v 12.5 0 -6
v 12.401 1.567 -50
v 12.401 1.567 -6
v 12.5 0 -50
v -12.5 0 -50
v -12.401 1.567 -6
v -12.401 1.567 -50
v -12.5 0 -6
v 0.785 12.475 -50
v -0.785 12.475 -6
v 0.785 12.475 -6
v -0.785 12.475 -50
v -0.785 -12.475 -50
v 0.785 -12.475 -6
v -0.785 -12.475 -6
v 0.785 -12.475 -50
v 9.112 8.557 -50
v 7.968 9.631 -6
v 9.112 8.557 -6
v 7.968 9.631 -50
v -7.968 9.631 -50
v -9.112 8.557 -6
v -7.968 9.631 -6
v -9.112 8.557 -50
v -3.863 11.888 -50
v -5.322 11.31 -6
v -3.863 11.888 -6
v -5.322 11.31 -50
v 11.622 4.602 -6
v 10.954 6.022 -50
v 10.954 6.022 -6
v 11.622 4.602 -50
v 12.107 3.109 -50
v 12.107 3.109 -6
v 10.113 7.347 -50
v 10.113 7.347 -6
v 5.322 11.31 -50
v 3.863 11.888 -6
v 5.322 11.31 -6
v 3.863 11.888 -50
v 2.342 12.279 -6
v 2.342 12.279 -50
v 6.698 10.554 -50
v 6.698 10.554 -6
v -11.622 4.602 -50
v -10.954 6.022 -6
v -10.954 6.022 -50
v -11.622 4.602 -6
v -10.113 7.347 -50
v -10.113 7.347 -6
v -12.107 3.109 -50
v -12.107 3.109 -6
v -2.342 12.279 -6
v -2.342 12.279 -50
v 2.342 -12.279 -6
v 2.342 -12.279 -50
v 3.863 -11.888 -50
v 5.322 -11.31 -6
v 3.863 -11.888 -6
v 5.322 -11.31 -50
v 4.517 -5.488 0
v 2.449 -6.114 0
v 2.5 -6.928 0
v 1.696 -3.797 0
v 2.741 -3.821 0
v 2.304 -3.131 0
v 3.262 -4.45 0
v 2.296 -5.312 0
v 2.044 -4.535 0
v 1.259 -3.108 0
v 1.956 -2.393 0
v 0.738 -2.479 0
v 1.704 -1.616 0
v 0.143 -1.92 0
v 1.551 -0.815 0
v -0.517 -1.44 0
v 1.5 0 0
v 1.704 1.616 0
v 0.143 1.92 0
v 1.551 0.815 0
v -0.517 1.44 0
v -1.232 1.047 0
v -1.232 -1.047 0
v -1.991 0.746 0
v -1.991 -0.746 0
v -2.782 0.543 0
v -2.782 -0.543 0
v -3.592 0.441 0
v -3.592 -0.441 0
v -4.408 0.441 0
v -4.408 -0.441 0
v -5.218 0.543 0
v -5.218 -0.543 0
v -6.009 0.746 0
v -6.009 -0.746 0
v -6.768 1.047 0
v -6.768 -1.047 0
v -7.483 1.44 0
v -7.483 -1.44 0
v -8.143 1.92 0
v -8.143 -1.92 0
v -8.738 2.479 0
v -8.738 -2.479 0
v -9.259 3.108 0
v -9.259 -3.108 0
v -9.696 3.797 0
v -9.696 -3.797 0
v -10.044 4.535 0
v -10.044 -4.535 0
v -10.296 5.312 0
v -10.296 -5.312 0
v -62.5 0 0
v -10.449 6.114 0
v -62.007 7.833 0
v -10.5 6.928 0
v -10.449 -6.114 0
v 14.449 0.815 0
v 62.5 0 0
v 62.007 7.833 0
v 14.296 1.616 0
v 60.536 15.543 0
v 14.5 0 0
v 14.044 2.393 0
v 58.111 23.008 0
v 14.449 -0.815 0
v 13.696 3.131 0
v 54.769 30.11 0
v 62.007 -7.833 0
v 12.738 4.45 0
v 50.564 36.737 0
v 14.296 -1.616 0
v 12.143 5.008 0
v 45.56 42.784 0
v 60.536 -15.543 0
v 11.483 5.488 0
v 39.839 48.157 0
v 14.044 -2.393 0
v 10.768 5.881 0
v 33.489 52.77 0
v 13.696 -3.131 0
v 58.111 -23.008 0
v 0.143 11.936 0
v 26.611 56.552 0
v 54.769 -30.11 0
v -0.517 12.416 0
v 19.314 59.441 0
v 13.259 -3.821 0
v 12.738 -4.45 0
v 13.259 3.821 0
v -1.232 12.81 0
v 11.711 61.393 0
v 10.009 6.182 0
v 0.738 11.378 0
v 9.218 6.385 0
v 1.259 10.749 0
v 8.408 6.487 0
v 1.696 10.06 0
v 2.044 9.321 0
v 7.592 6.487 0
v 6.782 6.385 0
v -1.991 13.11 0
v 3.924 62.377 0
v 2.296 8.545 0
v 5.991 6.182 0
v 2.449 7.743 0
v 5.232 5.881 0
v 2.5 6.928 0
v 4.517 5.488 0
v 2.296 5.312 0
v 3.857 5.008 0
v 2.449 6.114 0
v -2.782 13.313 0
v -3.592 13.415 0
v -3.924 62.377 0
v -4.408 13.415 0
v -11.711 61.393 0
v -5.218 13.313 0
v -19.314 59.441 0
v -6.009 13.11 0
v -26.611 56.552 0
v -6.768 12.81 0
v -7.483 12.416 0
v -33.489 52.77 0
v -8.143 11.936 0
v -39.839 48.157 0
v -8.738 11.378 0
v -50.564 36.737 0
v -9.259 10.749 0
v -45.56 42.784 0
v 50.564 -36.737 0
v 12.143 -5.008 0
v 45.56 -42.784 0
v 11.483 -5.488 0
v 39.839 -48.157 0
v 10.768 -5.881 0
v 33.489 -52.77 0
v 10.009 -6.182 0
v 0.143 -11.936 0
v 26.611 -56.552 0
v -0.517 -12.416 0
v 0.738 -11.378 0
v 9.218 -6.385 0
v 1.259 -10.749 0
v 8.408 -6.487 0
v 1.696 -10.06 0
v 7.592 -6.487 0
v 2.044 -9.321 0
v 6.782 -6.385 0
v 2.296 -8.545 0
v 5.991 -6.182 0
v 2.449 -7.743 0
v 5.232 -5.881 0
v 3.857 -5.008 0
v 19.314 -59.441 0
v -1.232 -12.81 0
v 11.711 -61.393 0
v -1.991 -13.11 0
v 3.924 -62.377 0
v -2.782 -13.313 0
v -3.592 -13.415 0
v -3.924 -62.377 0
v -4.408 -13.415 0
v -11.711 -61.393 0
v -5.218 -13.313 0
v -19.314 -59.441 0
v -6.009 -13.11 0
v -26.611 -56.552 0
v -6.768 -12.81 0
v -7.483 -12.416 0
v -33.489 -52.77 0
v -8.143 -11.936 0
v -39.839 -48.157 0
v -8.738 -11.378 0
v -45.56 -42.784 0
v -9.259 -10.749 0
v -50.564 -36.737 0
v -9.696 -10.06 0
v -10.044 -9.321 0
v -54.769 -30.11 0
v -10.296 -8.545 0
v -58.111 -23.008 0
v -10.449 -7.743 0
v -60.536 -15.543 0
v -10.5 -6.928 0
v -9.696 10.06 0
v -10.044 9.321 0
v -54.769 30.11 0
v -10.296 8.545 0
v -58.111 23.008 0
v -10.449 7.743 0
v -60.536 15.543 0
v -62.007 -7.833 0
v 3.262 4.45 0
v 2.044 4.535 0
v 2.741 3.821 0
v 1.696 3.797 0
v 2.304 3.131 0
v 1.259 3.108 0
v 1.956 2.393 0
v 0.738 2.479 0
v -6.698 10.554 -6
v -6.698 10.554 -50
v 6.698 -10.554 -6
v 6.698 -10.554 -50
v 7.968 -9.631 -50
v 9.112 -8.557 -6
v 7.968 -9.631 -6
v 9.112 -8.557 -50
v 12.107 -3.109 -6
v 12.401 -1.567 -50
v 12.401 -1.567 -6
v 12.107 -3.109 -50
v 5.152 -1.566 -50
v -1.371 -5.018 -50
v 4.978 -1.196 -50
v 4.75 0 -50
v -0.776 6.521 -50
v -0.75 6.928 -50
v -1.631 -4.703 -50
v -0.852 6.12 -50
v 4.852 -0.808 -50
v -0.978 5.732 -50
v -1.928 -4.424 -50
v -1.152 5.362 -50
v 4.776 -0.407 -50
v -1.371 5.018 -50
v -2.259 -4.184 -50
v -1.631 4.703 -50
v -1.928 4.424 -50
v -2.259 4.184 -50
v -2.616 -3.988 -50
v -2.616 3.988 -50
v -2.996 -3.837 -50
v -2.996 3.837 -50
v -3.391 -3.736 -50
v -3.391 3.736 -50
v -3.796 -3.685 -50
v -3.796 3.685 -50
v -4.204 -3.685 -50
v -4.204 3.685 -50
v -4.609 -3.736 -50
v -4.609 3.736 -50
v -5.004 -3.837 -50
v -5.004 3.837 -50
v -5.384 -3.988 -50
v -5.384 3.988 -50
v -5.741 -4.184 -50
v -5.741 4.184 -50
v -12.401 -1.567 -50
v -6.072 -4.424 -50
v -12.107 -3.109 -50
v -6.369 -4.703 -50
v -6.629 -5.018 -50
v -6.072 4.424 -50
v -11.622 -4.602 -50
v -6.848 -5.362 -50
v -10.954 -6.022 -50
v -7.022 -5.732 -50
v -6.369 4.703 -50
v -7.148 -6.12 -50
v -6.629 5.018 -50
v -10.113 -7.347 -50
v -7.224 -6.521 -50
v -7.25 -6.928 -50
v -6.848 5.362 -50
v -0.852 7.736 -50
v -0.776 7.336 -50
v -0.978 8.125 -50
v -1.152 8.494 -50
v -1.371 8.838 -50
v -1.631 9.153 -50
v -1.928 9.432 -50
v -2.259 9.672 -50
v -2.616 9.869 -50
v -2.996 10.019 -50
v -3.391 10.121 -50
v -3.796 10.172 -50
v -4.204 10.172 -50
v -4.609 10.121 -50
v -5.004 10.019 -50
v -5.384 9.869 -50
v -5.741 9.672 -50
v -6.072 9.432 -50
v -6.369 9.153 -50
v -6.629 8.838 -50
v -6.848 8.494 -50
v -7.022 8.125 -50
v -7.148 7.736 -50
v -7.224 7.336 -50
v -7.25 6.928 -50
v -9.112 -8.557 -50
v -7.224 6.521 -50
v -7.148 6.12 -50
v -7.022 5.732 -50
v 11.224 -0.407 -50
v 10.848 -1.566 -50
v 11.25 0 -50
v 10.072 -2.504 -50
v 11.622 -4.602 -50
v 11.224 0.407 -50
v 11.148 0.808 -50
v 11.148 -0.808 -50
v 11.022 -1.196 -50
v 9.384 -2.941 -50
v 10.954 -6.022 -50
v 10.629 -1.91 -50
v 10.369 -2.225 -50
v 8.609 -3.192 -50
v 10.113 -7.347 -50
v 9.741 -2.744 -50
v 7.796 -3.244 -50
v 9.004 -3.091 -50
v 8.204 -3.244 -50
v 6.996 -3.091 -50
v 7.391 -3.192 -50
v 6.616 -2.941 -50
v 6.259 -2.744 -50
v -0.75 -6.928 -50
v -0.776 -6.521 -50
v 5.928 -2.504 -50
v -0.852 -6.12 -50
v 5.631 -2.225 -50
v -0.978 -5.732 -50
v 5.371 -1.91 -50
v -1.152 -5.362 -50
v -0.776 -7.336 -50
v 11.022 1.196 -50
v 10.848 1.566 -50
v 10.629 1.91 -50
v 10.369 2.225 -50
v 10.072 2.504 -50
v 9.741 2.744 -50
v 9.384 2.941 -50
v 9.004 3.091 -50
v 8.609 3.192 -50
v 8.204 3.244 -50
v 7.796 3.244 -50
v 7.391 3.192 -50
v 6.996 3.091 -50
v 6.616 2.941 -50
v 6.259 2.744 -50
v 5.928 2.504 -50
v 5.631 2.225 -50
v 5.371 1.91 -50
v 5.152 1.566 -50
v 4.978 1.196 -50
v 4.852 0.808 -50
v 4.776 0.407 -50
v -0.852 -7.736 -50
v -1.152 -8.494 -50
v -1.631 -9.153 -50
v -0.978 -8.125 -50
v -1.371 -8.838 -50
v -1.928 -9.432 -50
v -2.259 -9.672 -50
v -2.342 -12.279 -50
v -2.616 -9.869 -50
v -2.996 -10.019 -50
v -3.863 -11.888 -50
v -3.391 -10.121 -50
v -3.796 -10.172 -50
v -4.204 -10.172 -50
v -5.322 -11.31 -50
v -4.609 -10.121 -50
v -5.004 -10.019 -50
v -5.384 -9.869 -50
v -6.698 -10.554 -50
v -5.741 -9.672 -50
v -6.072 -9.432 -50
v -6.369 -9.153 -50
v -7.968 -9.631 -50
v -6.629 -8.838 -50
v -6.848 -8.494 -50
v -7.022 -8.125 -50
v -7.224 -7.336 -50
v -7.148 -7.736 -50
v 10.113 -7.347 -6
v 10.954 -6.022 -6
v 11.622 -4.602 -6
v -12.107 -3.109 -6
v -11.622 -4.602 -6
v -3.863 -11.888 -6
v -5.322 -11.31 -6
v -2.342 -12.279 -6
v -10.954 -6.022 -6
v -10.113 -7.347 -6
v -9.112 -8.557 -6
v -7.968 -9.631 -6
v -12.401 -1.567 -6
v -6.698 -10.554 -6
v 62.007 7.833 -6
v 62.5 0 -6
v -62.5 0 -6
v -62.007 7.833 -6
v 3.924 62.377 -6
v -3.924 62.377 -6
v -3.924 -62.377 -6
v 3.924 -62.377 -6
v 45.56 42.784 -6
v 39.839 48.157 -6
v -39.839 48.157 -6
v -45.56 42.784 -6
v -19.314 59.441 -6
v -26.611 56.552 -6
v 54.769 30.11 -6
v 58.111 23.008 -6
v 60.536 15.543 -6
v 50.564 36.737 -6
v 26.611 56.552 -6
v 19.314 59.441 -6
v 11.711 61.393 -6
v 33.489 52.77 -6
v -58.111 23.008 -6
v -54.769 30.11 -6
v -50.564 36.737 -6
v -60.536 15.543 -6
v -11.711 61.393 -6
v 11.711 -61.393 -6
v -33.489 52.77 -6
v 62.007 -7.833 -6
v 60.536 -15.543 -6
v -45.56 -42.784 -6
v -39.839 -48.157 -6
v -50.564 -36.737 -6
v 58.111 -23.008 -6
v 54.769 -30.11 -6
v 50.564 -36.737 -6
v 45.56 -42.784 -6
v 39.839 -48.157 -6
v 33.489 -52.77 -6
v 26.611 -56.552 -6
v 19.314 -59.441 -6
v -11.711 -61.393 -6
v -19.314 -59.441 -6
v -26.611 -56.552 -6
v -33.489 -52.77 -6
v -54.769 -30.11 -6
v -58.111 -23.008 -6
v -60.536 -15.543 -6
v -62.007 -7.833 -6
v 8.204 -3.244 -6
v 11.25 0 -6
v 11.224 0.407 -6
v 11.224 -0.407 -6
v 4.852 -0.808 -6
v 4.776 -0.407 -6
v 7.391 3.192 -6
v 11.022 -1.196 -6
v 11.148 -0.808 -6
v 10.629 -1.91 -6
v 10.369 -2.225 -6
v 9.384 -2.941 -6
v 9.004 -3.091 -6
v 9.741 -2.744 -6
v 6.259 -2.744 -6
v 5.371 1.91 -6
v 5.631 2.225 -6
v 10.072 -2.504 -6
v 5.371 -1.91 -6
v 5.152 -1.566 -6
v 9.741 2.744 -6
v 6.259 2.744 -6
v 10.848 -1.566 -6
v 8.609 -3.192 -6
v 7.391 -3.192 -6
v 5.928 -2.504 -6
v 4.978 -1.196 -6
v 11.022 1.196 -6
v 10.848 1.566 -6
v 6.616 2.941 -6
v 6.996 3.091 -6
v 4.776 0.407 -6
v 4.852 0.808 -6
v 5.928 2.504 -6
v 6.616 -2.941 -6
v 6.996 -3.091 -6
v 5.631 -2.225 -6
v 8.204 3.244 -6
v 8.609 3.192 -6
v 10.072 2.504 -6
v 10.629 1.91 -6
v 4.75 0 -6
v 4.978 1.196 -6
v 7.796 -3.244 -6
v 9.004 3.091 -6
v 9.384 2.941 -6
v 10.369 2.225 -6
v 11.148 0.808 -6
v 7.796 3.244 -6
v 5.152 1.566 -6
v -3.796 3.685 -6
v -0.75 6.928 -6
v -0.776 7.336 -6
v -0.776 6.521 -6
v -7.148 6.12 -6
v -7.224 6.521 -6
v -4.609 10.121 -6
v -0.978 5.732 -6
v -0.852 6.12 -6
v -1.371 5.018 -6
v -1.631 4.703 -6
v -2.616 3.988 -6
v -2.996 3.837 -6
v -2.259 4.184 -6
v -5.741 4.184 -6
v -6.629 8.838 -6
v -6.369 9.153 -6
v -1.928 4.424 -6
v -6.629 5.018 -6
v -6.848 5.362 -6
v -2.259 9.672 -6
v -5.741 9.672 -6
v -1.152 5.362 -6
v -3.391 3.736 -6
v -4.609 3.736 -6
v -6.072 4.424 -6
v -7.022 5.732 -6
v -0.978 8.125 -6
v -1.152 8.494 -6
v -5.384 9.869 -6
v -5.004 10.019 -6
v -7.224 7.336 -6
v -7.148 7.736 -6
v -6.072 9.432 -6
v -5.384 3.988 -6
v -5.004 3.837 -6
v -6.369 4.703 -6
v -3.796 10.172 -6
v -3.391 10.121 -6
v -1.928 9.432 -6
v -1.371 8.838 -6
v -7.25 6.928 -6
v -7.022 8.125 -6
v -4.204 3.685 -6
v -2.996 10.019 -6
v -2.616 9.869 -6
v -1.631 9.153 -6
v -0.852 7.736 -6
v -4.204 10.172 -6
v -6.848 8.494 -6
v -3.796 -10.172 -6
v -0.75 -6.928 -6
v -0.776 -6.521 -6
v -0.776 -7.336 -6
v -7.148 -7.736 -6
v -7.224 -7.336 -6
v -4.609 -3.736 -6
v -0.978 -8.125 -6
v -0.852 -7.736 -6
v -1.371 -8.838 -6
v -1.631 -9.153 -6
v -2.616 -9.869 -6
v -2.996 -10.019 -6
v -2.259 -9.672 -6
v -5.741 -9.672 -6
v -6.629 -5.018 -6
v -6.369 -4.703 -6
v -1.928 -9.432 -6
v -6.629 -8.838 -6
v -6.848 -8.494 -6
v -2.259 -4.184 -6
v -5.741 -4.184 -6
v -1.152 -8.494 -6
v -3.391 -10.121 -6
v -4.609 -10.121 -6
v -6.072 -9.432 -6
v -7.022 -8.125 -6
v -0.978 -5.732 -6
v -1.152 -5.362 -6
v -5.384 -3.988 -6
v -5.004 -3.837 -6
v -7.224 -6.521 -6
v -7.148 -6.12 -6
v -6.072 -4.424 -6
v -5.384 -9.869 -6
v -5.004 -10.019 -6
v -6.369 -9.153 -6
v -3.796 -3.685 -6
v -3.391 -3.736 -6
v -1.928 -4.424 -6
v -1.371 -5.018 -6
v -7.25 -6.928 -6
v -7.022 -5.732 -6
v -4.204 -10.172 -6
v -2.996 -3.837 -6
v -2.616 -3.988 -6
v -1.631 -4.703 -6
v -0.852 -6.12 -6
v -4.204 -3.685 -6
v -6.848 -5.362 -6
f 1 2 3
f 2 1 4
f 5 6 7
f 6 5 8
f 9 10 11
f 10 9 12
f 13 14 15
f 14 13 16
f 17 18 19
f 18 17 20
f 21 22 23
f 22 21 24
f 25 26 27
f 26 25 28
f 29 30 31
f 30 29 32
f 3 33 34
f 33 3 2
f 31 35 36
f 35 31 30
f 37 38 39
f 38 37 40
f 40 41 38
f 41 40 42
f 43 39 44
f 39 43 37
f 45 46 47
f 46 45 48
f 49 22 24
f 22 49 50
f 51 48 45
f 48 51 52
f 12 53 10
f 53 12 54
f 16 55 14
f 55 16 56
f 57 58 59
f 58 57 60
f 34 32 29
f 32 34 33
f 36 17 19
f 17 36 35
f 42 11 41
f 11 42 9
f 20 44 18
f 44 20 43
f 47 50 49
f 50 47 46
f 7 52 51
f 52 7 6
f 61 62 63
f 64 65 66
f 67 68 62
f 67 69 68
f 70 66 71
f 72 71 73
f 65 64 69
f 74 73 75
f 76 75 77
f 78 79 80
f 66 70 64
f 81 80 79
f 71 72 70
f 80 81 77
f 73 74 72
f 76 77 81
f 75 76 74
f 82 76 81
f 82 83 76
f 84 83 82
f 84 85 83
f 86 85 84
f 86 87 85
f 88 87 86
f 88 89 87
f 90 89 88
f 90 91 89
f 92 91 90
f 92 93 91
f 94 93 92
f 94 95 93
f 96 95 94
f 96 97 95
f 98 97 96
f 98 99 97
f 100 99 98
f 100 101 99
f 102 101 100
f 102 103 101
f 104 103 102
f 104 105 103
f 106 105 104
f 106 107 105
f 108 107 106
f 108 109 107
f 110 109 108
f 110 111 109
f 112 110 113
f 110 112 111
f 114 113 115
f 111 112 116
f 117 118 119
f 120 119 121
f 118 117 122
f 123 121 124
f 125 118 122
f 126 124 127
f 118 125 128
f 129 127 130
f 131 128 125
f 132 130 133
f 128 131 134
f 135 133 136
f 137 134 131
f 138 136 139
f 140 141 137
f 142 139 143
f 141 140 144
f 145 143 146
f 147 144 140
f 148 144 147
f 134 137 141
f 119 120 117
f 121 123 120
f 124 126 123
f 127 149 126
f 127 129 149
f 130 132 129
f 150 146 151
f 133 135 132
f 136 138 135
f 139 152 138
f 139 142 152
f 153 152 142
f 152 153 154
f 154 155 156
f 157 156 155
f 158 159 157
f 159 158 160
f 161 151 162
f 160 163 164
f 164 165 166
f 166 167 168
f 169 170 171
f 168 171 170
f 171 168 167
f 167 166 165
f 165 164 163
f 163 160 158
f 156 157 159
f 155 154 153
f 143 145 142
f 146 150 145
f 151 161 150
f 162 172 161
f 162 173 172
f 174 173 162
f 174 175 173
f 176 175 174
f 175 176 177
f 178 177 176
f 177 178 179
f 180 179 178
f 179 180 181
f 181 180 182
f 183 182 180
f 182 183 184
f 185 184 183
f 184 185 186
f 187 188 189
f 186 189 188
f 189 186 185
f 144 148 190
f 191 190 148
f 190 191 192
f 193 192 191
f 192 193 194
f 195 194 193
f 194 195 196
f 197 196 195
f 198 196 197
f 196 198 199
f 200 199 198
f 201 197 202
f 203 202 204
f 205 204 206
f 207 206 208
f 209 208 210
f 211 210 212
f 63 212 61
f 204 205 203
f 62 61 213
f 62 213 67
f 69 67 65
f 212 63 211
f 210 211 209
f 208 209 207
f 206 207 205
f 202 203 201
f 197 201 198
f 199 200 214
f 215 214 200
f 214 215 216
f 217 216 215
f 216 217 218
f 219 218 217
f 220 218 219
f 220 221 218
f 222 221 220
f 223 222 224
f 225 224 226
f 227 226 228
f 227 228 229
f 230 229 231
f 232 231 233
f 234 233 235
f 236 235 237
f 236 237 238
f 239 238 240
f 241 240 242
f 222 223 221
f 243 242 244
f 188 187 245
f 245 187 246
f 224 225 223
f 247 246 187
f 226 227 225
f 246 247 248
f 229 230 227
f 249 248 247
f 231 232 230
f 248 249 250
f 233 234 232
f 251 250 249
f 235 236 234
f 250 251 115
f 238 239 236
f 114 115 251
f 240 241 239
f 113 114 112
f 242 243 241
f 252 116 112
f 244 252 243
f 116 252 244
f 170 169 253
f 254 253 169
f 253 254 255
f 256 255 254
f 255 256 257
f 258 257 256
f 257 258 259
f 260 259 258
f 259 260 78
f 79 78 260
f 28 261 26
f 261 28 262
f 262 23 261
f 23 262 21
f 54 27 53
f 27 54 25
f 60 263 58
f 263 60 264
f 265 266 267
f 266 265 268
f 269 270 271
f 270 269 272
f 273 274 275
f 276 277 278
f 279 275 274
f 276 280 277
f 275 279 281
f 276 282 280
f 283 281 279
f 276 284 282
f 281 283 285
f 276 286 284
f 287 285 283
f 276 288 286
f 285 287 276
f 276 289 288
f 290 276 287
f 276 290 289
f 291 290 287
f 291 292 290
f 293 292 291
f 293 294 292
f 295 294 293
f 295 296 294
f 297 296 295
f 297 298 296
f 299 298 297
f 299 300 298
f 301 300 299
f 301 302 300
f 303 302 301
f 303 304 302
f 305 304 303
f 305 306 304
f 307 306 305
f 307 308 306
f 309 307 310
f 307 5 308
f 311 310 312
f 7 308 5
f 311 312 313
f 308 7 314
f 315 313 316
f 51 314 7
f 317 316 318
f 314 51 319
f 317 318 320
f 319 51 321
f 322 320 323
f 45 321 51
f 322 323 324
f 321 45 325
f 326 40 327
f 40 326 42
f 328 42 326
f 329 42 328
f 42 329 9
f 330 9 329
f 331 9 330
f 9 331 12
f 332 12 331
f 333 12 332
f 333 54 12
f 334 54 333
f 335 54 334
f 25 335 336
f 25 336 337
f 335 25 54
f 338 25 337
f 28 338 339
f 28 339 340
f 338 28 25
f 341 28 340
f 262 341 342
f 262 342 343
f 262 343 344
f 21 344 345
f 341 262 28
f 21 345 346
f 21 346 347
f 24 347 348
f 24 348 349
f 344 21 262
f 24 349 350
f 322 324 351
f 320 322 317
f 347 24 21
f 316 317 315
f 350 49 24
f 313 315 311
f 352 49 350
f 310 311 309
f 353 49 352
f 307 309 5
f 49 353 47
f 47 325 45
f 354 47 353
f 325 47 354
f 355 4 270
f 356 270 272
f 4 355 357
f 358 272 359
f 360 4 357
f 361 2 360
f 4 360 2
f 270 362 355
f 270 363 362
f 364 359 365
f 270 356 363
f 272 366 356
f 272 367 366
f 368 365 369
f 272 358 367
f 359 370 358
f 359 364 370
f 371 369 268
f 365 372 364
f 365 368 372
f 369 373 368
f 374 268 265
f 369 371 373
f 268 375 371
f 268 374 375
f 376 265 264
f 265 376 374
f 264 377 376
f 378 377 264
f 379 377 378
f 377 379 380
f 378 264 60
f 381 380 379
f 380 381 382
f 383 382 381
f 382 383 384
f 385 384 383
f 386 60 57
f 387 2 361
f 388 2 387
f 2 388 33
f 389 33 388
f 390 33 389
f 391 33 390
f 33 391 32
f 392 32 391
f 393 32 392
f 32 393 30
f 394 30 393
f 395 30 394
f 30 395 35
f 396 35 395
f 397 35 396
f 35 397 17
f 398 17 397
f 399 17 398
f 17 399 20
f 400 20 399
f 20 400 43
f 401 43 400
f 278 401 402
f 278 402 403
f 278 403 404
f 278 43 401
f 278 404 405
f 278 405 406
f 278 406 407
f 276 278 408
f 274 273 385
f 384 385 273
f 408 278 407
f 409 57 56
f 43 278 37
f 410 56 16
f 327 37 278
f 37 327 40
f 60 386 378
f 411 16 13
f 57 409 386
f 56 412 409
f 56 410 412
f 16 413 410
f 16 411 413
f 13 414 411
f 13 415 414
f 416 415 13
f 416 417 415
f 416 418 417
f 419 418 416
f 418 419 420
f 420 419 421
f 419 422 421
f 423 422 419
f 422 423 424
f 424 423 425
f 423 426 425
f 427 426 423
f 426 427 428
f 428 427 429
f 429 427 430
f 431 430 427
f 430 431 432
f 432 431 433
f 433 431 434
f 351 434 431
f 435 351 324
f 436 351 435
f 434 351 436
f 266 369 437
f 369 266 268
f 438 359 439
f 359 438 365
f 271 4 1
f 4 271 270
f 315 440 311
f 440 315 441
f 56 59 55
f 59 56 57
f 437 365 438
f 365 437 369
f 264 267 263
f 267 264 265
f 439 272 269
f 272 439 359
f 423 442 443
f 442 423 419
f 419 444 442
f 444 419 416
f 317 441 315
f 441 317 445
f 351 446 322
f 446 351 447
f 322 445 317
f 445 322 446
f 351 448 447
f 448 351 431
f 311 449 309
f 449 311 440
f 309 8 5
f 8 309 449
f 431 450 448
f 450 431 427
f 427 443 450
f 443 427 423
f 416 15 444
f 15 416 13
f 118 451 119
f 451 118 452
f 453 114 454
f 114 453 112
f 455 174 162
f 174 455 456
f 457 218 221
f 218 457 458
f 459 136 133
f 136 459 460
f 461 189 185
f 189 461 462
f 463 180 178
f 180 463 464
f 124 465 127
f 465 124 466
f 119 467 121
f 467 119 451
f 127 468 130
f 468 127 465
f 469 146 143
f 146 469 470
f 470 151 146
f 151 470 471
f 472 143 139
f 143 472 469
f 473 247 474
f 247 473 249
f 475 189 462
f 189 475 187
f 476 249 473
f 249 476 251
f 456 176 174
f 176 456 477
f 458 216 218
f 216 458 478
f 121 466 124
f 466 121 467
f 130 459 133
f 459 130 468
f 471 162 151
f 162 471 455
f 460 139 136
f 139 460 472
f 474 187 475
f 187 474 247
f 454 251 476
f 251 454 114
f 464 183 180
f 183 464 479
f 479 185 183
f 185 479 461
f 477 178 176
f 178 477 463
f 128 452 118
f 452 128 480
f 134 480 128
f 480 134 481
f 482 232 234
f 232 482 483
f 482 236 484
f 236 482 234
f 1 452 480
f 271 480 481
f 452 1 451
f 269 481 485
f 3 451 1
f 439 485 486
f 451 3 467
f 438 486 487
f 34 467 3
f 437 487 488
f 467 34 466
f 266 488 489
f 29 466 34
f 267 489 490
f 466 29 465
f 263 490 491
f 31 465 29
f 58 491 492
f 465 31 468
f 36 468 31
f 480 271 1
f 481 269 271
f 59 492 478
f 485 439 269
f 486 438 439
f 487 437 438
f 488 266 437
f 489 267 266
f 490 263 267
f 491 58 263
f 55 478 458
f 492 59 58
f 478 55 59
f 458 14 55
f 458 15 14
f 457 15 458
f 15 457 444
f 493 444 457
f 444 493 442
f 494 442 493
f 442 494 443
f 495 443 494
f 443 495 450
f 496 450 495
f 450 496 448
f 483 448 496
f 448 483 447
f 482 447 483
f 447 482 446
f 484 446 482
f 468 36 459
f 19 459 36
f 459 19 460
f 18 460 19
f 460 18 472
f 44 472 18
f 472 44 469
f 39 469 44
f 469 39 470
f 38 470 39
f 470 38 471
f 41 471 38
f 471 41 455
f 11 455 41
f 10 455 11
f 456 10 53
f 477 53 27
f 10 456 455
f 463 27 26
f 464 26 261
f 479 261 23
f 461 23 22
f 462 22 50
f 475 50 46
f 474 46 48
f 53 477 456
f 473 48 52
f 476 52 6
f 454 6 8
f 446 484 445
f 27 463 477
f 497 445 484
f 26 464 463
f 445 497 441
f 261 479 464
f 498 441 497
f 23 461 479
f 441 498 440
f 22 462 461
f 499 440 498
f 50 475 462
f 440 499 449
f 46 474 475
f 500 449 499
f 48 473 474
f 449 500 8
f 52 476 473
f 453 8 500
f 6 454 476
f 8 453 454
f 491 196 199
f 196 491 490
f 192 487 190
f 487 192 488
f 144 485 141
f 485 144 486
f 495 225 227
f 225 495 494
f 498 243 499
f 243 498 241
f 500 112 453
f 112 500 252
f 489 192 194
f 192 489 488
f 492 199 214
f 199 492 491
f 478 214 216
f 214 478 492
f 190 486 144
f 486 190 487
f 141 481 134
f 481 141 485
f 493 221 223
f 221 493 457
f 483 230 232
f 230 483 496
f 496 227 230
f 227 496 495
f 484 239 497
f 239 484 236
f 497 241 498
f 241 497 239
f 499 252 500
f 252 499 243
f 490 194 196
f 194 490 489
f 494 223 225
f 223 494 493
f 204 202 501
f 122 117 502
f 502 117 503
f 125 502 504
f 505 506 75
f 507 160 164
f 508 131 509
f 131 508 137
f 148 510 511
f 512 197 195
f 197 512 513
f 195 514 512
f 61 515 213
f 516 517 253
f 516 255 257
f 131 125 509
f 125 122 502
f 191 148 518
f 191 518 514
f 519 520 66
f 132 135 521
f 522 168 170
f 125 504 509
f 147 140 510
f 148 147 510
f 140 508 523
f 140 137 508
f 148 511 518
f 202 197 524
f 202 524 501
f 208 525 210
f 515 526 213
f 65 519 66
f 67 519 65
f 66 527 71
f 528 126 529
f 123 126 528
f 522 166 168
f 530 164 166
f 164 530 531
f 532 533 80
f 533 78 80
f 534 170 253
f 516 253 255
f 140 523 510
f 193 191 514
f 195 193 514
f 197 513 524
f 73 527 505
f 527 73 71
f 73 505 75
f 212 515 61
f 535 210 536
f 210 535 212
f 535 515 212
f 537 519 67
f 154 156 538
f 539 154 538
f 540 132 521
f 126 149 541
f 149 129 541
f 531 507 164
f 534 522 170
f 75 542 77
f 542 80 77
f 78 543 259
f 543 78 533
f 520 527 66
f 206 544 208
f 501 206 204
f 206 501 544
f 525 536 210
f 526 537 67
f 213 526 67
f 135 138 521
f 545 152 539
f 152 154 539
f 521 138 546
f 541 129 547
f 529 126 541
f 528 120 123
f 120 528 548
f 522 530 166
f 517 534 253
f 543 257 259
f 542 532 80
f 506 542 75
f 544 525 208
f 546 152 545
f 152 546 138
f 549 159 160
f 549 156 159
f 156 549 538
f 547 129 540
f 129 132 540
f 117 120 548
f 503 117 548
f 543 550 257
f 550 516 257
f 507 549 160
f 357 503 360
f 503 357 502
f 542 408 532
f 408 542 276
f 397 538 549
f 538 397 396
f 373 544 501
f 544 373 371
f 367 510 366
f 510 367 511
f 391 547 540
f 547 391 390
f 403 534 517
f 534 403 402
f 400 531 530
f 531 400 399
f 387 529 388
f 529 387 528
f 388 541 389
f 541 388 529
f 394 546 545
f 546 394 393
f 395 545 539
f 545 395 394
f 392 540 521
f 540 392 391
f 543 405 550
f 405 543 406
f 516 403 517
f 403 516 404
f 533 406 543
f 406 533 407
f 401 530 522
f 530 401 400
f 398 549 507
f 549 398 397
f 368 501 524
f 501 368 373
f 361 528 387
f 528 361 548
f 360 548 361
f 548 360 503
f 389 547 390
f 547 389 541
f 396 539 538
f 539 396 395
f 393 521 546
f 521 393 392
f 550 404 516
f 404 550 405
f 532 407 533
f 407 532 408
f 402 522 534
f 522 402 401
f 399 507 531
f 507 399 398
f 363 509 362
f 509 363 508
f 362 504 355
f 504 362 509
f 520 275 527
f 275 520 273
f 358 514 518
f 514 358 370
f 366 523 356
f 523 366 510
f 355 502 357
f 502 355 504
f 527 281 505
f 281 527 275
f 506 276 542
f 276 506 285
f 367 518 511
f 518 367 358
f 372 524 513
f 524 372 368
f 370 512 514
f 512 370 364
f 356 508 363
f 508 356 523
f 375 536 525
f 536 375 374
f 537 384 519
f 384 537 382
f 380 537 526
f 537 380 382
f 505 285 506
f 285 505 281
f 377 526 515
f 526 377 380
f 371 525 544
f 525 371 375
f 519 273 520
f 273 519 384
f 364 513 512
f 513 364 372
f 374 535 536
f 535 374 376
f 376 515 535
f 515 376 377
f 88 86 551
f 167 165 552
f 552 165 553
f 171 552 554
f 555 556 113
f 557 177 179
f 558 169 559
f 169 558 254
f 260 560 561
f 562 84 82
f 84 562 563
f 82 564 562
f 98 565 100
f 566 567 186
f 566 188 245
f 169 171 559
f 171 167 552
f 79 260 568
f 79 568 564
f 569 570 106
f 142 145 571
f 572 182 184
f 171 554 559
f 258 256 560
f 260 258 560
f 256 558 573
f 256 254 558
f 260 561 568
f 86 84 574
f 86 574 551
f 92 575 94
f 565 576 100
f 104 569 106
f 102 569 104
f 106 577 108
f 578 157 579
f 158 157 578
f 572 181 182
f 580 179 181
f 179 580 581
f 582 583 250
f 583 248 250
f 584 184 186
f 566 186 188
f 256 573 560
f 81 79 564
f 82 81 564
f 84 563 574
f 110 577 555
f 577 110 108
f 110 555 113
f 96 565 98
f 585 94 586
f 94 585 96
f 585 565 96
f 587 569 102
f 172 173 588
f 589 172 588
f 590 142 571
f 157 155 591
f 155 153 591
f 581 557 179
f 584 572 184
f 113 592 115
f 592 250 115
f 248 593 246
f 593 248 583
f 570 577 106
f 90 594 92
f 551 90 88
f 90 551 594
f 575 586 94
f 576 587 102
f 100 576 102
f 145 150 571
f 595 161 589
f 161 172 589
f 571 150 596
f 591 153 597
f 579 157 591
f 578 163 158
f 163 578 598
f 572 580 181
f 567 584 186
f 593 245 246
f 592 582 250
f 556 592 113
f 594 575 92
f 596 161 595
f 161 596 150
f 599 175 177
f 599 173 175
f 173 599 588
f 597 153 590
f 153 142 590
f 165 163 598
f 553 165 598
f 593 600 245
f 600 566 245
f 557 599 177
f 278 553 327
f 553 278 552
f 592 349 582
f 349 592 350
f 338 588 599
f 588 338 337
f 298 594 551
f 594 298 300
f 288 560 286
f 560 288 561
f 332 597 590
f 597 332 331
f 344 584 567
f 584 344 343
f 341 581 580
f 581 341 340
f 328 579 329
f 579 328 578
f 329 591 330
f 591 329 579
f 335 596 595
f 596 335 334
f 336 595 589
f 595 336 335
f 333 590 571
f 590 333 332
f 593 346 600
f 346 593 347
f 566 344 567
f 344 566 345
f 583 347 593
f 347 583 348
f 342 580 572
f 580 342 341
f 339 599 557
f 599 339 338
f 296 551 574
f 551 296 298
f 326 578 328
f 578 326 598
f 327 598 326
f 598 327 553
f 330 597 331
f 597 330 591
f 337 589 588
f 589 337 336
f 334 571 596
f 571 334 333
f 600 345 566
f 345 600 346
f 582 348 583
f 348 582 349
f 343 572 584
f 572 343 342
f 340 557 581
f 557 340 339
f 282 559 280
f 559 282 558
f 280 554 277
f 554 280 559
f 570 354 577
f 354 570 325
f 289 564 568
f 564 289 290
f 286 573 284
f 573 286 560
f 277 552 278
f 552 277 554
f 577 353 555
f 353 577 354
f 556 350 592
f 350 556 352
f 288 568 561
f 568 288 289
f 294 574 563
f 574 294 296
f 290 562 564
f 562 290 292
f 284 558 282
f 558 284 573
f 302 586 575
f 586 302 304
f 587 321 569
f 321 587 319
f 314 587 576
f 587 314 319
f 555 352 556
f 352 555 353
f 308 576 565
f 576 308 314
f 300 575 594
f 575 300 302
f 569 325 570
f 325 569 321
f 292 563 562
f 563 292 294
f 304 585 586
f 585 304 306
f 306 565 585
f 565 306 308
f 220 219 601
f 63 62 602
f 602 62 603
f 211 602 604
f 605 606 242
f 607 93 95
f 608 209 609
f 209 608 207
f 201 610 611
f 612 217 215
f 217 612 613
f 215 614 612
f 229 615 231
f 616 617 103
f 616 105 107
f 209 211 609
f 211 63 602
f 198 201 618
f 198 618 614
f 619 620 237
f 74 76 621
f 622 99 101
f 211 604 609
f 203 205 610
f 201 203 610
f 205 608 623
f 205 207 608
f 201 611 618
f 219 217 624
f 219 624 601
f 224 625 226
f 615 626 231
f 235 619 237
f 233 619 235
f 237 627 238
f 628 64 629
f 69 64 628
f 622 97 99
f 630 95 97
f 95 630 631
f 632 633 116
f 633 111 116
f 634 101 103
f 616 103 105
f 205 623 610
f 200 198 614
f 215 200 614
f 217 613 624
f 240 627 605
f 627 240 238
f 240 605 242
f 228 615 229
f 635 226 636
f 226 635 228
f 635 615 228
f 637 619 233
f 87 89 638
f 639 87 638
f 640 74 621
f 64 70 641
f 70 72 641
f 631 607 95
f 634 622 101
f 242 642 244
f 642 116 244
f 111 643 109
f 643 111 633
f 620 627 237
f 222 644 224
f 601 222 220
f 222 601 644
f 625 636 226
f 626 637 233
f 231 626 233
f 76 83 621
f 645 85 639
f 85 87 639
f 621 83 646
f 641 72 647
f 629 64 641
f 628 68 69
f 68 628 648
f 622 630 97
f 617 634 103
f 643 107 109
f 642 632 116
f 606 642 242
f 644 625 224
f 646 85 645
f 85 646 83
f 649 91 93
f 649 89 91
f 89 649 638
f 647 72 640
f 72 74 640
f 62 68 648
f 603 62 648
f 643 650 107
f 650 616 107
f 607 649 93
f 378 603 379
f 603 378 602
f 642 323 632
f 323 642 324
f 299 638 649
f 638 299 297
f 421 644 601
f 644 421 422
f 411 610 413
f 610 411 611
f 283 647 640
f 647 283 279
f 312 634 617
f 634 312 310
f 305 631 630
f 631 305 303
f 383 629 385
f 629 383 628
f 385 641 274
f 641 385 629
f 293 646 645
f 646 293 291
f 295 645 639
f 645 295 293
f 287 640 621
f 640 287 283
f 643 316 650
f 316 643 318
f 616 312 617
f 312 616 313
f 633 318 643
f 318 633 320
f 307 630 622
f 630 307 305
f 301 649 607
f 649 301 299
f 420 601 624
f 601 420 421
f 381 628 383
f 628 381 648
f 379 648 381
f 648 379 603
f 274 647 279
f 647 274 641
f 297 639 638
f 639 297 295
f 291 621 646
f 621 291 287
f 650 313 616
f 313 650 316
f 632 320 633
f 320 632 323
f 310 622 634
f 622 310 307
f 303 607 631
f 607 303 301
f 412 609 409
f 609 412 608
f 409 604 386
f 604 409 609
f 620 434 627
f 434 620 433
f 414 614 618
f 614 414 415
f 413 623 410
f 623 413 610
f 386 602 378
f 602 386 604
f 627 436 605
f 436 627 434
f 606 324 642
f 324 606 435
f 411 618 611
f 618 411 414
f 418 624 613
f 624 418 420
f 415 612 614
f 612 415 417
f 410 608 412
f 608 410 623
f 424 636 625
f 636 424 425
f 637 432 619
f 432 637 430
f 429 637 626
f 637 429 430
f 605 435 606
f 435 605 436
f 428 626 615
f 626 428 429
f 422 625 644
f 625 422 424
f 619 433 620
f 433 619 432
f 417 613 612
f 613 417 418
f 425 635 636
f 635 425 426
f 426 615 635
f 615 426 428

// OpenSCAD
$fn = 50;


difference() {
	union() {
		translate(v = [0, 0, -50.0000000000]) {
			cylinder(h = 50, r = 12.5000000000);
		}
		translate(v = [0, 0, -6.0000000000]) {
			cylinder(h = 6, r = 62.5000000000);
		}
	}
	union() {
		translate(v = [8.0000000000, 0.0000000000, 0]) {
			rotate(a = [0, 0, 0]) {
				difference() {
					union() {
						#translate(v = [0, 0, -50.0000000000]) {
							cylinder(h = 50, r = 2.2500000000);
						}
						#translate(v = [0, 0, -6]) {
							cylinder(h = 6, r = 12.5000000000, r1 = 3.2500000000, r2 = 6.5000000000);
						}
						#translate(v = [0, 0, -50.0000000000]) {
							cylinder(h = 50, r = 3.2500000000);
						}
						#translate(v = [0, 0, -50.0000000000]) {
							cylinder(h = 50, r = 2.2500000000);
						}
					}
					union();
				}
			}
		}
		translate(v = [-4.0000000000, 6.9282032303, 0]) {
			rotate(a = [0, 0, 0]) {
				difference() {
					union() {
						#translate(v = [0, 0, -50.0000000000]) {
							cylinder(h = 50, r = 2.2500000000);
						}
						#translate(v = [0, 0, -6]) {
							cylinder(h = 6, r = 12.5000000000, r1 = 3.2500000000, r2 = 6.5000000000);
						}
						#translate(v = [0, 0, -50.0000000000]) {
							cylinder(h = 50, r = 3.2500000000);
						}
						#translate(v = [0, 0, -50.0000000000]) {
							cylinder(h = 50, r = 2.2500000000);
						}
					}
					union();
				}
			}
		}
		translate(v = [-4.0000000000, -6.9282032303, 0]) {
			rotate(a = [0, 0, 0]) {
				difference() {
					union() {
						#translate(v = [0, 0, -50.0000000000]) {
							cylinder(h = 50, r = 2.2500000000);
						}
						#translate(v = [0, 0, -6]) {
							cylinder(h = 6, r = 12.5000000000, r1 = 3.2500000000, r2 = 6.5000000000);
						}
						#translate(v = [0, 0, -50.0000000000]) {
							cylinder(h = 50, r = 3.2500000000);
						}
						#translate(v = [0, 0, -50.0000000000]) {
							cylinder(h = 50, r = 2.2500000000);
						}
					}
					union();
				}
			}
		}
	}
}
